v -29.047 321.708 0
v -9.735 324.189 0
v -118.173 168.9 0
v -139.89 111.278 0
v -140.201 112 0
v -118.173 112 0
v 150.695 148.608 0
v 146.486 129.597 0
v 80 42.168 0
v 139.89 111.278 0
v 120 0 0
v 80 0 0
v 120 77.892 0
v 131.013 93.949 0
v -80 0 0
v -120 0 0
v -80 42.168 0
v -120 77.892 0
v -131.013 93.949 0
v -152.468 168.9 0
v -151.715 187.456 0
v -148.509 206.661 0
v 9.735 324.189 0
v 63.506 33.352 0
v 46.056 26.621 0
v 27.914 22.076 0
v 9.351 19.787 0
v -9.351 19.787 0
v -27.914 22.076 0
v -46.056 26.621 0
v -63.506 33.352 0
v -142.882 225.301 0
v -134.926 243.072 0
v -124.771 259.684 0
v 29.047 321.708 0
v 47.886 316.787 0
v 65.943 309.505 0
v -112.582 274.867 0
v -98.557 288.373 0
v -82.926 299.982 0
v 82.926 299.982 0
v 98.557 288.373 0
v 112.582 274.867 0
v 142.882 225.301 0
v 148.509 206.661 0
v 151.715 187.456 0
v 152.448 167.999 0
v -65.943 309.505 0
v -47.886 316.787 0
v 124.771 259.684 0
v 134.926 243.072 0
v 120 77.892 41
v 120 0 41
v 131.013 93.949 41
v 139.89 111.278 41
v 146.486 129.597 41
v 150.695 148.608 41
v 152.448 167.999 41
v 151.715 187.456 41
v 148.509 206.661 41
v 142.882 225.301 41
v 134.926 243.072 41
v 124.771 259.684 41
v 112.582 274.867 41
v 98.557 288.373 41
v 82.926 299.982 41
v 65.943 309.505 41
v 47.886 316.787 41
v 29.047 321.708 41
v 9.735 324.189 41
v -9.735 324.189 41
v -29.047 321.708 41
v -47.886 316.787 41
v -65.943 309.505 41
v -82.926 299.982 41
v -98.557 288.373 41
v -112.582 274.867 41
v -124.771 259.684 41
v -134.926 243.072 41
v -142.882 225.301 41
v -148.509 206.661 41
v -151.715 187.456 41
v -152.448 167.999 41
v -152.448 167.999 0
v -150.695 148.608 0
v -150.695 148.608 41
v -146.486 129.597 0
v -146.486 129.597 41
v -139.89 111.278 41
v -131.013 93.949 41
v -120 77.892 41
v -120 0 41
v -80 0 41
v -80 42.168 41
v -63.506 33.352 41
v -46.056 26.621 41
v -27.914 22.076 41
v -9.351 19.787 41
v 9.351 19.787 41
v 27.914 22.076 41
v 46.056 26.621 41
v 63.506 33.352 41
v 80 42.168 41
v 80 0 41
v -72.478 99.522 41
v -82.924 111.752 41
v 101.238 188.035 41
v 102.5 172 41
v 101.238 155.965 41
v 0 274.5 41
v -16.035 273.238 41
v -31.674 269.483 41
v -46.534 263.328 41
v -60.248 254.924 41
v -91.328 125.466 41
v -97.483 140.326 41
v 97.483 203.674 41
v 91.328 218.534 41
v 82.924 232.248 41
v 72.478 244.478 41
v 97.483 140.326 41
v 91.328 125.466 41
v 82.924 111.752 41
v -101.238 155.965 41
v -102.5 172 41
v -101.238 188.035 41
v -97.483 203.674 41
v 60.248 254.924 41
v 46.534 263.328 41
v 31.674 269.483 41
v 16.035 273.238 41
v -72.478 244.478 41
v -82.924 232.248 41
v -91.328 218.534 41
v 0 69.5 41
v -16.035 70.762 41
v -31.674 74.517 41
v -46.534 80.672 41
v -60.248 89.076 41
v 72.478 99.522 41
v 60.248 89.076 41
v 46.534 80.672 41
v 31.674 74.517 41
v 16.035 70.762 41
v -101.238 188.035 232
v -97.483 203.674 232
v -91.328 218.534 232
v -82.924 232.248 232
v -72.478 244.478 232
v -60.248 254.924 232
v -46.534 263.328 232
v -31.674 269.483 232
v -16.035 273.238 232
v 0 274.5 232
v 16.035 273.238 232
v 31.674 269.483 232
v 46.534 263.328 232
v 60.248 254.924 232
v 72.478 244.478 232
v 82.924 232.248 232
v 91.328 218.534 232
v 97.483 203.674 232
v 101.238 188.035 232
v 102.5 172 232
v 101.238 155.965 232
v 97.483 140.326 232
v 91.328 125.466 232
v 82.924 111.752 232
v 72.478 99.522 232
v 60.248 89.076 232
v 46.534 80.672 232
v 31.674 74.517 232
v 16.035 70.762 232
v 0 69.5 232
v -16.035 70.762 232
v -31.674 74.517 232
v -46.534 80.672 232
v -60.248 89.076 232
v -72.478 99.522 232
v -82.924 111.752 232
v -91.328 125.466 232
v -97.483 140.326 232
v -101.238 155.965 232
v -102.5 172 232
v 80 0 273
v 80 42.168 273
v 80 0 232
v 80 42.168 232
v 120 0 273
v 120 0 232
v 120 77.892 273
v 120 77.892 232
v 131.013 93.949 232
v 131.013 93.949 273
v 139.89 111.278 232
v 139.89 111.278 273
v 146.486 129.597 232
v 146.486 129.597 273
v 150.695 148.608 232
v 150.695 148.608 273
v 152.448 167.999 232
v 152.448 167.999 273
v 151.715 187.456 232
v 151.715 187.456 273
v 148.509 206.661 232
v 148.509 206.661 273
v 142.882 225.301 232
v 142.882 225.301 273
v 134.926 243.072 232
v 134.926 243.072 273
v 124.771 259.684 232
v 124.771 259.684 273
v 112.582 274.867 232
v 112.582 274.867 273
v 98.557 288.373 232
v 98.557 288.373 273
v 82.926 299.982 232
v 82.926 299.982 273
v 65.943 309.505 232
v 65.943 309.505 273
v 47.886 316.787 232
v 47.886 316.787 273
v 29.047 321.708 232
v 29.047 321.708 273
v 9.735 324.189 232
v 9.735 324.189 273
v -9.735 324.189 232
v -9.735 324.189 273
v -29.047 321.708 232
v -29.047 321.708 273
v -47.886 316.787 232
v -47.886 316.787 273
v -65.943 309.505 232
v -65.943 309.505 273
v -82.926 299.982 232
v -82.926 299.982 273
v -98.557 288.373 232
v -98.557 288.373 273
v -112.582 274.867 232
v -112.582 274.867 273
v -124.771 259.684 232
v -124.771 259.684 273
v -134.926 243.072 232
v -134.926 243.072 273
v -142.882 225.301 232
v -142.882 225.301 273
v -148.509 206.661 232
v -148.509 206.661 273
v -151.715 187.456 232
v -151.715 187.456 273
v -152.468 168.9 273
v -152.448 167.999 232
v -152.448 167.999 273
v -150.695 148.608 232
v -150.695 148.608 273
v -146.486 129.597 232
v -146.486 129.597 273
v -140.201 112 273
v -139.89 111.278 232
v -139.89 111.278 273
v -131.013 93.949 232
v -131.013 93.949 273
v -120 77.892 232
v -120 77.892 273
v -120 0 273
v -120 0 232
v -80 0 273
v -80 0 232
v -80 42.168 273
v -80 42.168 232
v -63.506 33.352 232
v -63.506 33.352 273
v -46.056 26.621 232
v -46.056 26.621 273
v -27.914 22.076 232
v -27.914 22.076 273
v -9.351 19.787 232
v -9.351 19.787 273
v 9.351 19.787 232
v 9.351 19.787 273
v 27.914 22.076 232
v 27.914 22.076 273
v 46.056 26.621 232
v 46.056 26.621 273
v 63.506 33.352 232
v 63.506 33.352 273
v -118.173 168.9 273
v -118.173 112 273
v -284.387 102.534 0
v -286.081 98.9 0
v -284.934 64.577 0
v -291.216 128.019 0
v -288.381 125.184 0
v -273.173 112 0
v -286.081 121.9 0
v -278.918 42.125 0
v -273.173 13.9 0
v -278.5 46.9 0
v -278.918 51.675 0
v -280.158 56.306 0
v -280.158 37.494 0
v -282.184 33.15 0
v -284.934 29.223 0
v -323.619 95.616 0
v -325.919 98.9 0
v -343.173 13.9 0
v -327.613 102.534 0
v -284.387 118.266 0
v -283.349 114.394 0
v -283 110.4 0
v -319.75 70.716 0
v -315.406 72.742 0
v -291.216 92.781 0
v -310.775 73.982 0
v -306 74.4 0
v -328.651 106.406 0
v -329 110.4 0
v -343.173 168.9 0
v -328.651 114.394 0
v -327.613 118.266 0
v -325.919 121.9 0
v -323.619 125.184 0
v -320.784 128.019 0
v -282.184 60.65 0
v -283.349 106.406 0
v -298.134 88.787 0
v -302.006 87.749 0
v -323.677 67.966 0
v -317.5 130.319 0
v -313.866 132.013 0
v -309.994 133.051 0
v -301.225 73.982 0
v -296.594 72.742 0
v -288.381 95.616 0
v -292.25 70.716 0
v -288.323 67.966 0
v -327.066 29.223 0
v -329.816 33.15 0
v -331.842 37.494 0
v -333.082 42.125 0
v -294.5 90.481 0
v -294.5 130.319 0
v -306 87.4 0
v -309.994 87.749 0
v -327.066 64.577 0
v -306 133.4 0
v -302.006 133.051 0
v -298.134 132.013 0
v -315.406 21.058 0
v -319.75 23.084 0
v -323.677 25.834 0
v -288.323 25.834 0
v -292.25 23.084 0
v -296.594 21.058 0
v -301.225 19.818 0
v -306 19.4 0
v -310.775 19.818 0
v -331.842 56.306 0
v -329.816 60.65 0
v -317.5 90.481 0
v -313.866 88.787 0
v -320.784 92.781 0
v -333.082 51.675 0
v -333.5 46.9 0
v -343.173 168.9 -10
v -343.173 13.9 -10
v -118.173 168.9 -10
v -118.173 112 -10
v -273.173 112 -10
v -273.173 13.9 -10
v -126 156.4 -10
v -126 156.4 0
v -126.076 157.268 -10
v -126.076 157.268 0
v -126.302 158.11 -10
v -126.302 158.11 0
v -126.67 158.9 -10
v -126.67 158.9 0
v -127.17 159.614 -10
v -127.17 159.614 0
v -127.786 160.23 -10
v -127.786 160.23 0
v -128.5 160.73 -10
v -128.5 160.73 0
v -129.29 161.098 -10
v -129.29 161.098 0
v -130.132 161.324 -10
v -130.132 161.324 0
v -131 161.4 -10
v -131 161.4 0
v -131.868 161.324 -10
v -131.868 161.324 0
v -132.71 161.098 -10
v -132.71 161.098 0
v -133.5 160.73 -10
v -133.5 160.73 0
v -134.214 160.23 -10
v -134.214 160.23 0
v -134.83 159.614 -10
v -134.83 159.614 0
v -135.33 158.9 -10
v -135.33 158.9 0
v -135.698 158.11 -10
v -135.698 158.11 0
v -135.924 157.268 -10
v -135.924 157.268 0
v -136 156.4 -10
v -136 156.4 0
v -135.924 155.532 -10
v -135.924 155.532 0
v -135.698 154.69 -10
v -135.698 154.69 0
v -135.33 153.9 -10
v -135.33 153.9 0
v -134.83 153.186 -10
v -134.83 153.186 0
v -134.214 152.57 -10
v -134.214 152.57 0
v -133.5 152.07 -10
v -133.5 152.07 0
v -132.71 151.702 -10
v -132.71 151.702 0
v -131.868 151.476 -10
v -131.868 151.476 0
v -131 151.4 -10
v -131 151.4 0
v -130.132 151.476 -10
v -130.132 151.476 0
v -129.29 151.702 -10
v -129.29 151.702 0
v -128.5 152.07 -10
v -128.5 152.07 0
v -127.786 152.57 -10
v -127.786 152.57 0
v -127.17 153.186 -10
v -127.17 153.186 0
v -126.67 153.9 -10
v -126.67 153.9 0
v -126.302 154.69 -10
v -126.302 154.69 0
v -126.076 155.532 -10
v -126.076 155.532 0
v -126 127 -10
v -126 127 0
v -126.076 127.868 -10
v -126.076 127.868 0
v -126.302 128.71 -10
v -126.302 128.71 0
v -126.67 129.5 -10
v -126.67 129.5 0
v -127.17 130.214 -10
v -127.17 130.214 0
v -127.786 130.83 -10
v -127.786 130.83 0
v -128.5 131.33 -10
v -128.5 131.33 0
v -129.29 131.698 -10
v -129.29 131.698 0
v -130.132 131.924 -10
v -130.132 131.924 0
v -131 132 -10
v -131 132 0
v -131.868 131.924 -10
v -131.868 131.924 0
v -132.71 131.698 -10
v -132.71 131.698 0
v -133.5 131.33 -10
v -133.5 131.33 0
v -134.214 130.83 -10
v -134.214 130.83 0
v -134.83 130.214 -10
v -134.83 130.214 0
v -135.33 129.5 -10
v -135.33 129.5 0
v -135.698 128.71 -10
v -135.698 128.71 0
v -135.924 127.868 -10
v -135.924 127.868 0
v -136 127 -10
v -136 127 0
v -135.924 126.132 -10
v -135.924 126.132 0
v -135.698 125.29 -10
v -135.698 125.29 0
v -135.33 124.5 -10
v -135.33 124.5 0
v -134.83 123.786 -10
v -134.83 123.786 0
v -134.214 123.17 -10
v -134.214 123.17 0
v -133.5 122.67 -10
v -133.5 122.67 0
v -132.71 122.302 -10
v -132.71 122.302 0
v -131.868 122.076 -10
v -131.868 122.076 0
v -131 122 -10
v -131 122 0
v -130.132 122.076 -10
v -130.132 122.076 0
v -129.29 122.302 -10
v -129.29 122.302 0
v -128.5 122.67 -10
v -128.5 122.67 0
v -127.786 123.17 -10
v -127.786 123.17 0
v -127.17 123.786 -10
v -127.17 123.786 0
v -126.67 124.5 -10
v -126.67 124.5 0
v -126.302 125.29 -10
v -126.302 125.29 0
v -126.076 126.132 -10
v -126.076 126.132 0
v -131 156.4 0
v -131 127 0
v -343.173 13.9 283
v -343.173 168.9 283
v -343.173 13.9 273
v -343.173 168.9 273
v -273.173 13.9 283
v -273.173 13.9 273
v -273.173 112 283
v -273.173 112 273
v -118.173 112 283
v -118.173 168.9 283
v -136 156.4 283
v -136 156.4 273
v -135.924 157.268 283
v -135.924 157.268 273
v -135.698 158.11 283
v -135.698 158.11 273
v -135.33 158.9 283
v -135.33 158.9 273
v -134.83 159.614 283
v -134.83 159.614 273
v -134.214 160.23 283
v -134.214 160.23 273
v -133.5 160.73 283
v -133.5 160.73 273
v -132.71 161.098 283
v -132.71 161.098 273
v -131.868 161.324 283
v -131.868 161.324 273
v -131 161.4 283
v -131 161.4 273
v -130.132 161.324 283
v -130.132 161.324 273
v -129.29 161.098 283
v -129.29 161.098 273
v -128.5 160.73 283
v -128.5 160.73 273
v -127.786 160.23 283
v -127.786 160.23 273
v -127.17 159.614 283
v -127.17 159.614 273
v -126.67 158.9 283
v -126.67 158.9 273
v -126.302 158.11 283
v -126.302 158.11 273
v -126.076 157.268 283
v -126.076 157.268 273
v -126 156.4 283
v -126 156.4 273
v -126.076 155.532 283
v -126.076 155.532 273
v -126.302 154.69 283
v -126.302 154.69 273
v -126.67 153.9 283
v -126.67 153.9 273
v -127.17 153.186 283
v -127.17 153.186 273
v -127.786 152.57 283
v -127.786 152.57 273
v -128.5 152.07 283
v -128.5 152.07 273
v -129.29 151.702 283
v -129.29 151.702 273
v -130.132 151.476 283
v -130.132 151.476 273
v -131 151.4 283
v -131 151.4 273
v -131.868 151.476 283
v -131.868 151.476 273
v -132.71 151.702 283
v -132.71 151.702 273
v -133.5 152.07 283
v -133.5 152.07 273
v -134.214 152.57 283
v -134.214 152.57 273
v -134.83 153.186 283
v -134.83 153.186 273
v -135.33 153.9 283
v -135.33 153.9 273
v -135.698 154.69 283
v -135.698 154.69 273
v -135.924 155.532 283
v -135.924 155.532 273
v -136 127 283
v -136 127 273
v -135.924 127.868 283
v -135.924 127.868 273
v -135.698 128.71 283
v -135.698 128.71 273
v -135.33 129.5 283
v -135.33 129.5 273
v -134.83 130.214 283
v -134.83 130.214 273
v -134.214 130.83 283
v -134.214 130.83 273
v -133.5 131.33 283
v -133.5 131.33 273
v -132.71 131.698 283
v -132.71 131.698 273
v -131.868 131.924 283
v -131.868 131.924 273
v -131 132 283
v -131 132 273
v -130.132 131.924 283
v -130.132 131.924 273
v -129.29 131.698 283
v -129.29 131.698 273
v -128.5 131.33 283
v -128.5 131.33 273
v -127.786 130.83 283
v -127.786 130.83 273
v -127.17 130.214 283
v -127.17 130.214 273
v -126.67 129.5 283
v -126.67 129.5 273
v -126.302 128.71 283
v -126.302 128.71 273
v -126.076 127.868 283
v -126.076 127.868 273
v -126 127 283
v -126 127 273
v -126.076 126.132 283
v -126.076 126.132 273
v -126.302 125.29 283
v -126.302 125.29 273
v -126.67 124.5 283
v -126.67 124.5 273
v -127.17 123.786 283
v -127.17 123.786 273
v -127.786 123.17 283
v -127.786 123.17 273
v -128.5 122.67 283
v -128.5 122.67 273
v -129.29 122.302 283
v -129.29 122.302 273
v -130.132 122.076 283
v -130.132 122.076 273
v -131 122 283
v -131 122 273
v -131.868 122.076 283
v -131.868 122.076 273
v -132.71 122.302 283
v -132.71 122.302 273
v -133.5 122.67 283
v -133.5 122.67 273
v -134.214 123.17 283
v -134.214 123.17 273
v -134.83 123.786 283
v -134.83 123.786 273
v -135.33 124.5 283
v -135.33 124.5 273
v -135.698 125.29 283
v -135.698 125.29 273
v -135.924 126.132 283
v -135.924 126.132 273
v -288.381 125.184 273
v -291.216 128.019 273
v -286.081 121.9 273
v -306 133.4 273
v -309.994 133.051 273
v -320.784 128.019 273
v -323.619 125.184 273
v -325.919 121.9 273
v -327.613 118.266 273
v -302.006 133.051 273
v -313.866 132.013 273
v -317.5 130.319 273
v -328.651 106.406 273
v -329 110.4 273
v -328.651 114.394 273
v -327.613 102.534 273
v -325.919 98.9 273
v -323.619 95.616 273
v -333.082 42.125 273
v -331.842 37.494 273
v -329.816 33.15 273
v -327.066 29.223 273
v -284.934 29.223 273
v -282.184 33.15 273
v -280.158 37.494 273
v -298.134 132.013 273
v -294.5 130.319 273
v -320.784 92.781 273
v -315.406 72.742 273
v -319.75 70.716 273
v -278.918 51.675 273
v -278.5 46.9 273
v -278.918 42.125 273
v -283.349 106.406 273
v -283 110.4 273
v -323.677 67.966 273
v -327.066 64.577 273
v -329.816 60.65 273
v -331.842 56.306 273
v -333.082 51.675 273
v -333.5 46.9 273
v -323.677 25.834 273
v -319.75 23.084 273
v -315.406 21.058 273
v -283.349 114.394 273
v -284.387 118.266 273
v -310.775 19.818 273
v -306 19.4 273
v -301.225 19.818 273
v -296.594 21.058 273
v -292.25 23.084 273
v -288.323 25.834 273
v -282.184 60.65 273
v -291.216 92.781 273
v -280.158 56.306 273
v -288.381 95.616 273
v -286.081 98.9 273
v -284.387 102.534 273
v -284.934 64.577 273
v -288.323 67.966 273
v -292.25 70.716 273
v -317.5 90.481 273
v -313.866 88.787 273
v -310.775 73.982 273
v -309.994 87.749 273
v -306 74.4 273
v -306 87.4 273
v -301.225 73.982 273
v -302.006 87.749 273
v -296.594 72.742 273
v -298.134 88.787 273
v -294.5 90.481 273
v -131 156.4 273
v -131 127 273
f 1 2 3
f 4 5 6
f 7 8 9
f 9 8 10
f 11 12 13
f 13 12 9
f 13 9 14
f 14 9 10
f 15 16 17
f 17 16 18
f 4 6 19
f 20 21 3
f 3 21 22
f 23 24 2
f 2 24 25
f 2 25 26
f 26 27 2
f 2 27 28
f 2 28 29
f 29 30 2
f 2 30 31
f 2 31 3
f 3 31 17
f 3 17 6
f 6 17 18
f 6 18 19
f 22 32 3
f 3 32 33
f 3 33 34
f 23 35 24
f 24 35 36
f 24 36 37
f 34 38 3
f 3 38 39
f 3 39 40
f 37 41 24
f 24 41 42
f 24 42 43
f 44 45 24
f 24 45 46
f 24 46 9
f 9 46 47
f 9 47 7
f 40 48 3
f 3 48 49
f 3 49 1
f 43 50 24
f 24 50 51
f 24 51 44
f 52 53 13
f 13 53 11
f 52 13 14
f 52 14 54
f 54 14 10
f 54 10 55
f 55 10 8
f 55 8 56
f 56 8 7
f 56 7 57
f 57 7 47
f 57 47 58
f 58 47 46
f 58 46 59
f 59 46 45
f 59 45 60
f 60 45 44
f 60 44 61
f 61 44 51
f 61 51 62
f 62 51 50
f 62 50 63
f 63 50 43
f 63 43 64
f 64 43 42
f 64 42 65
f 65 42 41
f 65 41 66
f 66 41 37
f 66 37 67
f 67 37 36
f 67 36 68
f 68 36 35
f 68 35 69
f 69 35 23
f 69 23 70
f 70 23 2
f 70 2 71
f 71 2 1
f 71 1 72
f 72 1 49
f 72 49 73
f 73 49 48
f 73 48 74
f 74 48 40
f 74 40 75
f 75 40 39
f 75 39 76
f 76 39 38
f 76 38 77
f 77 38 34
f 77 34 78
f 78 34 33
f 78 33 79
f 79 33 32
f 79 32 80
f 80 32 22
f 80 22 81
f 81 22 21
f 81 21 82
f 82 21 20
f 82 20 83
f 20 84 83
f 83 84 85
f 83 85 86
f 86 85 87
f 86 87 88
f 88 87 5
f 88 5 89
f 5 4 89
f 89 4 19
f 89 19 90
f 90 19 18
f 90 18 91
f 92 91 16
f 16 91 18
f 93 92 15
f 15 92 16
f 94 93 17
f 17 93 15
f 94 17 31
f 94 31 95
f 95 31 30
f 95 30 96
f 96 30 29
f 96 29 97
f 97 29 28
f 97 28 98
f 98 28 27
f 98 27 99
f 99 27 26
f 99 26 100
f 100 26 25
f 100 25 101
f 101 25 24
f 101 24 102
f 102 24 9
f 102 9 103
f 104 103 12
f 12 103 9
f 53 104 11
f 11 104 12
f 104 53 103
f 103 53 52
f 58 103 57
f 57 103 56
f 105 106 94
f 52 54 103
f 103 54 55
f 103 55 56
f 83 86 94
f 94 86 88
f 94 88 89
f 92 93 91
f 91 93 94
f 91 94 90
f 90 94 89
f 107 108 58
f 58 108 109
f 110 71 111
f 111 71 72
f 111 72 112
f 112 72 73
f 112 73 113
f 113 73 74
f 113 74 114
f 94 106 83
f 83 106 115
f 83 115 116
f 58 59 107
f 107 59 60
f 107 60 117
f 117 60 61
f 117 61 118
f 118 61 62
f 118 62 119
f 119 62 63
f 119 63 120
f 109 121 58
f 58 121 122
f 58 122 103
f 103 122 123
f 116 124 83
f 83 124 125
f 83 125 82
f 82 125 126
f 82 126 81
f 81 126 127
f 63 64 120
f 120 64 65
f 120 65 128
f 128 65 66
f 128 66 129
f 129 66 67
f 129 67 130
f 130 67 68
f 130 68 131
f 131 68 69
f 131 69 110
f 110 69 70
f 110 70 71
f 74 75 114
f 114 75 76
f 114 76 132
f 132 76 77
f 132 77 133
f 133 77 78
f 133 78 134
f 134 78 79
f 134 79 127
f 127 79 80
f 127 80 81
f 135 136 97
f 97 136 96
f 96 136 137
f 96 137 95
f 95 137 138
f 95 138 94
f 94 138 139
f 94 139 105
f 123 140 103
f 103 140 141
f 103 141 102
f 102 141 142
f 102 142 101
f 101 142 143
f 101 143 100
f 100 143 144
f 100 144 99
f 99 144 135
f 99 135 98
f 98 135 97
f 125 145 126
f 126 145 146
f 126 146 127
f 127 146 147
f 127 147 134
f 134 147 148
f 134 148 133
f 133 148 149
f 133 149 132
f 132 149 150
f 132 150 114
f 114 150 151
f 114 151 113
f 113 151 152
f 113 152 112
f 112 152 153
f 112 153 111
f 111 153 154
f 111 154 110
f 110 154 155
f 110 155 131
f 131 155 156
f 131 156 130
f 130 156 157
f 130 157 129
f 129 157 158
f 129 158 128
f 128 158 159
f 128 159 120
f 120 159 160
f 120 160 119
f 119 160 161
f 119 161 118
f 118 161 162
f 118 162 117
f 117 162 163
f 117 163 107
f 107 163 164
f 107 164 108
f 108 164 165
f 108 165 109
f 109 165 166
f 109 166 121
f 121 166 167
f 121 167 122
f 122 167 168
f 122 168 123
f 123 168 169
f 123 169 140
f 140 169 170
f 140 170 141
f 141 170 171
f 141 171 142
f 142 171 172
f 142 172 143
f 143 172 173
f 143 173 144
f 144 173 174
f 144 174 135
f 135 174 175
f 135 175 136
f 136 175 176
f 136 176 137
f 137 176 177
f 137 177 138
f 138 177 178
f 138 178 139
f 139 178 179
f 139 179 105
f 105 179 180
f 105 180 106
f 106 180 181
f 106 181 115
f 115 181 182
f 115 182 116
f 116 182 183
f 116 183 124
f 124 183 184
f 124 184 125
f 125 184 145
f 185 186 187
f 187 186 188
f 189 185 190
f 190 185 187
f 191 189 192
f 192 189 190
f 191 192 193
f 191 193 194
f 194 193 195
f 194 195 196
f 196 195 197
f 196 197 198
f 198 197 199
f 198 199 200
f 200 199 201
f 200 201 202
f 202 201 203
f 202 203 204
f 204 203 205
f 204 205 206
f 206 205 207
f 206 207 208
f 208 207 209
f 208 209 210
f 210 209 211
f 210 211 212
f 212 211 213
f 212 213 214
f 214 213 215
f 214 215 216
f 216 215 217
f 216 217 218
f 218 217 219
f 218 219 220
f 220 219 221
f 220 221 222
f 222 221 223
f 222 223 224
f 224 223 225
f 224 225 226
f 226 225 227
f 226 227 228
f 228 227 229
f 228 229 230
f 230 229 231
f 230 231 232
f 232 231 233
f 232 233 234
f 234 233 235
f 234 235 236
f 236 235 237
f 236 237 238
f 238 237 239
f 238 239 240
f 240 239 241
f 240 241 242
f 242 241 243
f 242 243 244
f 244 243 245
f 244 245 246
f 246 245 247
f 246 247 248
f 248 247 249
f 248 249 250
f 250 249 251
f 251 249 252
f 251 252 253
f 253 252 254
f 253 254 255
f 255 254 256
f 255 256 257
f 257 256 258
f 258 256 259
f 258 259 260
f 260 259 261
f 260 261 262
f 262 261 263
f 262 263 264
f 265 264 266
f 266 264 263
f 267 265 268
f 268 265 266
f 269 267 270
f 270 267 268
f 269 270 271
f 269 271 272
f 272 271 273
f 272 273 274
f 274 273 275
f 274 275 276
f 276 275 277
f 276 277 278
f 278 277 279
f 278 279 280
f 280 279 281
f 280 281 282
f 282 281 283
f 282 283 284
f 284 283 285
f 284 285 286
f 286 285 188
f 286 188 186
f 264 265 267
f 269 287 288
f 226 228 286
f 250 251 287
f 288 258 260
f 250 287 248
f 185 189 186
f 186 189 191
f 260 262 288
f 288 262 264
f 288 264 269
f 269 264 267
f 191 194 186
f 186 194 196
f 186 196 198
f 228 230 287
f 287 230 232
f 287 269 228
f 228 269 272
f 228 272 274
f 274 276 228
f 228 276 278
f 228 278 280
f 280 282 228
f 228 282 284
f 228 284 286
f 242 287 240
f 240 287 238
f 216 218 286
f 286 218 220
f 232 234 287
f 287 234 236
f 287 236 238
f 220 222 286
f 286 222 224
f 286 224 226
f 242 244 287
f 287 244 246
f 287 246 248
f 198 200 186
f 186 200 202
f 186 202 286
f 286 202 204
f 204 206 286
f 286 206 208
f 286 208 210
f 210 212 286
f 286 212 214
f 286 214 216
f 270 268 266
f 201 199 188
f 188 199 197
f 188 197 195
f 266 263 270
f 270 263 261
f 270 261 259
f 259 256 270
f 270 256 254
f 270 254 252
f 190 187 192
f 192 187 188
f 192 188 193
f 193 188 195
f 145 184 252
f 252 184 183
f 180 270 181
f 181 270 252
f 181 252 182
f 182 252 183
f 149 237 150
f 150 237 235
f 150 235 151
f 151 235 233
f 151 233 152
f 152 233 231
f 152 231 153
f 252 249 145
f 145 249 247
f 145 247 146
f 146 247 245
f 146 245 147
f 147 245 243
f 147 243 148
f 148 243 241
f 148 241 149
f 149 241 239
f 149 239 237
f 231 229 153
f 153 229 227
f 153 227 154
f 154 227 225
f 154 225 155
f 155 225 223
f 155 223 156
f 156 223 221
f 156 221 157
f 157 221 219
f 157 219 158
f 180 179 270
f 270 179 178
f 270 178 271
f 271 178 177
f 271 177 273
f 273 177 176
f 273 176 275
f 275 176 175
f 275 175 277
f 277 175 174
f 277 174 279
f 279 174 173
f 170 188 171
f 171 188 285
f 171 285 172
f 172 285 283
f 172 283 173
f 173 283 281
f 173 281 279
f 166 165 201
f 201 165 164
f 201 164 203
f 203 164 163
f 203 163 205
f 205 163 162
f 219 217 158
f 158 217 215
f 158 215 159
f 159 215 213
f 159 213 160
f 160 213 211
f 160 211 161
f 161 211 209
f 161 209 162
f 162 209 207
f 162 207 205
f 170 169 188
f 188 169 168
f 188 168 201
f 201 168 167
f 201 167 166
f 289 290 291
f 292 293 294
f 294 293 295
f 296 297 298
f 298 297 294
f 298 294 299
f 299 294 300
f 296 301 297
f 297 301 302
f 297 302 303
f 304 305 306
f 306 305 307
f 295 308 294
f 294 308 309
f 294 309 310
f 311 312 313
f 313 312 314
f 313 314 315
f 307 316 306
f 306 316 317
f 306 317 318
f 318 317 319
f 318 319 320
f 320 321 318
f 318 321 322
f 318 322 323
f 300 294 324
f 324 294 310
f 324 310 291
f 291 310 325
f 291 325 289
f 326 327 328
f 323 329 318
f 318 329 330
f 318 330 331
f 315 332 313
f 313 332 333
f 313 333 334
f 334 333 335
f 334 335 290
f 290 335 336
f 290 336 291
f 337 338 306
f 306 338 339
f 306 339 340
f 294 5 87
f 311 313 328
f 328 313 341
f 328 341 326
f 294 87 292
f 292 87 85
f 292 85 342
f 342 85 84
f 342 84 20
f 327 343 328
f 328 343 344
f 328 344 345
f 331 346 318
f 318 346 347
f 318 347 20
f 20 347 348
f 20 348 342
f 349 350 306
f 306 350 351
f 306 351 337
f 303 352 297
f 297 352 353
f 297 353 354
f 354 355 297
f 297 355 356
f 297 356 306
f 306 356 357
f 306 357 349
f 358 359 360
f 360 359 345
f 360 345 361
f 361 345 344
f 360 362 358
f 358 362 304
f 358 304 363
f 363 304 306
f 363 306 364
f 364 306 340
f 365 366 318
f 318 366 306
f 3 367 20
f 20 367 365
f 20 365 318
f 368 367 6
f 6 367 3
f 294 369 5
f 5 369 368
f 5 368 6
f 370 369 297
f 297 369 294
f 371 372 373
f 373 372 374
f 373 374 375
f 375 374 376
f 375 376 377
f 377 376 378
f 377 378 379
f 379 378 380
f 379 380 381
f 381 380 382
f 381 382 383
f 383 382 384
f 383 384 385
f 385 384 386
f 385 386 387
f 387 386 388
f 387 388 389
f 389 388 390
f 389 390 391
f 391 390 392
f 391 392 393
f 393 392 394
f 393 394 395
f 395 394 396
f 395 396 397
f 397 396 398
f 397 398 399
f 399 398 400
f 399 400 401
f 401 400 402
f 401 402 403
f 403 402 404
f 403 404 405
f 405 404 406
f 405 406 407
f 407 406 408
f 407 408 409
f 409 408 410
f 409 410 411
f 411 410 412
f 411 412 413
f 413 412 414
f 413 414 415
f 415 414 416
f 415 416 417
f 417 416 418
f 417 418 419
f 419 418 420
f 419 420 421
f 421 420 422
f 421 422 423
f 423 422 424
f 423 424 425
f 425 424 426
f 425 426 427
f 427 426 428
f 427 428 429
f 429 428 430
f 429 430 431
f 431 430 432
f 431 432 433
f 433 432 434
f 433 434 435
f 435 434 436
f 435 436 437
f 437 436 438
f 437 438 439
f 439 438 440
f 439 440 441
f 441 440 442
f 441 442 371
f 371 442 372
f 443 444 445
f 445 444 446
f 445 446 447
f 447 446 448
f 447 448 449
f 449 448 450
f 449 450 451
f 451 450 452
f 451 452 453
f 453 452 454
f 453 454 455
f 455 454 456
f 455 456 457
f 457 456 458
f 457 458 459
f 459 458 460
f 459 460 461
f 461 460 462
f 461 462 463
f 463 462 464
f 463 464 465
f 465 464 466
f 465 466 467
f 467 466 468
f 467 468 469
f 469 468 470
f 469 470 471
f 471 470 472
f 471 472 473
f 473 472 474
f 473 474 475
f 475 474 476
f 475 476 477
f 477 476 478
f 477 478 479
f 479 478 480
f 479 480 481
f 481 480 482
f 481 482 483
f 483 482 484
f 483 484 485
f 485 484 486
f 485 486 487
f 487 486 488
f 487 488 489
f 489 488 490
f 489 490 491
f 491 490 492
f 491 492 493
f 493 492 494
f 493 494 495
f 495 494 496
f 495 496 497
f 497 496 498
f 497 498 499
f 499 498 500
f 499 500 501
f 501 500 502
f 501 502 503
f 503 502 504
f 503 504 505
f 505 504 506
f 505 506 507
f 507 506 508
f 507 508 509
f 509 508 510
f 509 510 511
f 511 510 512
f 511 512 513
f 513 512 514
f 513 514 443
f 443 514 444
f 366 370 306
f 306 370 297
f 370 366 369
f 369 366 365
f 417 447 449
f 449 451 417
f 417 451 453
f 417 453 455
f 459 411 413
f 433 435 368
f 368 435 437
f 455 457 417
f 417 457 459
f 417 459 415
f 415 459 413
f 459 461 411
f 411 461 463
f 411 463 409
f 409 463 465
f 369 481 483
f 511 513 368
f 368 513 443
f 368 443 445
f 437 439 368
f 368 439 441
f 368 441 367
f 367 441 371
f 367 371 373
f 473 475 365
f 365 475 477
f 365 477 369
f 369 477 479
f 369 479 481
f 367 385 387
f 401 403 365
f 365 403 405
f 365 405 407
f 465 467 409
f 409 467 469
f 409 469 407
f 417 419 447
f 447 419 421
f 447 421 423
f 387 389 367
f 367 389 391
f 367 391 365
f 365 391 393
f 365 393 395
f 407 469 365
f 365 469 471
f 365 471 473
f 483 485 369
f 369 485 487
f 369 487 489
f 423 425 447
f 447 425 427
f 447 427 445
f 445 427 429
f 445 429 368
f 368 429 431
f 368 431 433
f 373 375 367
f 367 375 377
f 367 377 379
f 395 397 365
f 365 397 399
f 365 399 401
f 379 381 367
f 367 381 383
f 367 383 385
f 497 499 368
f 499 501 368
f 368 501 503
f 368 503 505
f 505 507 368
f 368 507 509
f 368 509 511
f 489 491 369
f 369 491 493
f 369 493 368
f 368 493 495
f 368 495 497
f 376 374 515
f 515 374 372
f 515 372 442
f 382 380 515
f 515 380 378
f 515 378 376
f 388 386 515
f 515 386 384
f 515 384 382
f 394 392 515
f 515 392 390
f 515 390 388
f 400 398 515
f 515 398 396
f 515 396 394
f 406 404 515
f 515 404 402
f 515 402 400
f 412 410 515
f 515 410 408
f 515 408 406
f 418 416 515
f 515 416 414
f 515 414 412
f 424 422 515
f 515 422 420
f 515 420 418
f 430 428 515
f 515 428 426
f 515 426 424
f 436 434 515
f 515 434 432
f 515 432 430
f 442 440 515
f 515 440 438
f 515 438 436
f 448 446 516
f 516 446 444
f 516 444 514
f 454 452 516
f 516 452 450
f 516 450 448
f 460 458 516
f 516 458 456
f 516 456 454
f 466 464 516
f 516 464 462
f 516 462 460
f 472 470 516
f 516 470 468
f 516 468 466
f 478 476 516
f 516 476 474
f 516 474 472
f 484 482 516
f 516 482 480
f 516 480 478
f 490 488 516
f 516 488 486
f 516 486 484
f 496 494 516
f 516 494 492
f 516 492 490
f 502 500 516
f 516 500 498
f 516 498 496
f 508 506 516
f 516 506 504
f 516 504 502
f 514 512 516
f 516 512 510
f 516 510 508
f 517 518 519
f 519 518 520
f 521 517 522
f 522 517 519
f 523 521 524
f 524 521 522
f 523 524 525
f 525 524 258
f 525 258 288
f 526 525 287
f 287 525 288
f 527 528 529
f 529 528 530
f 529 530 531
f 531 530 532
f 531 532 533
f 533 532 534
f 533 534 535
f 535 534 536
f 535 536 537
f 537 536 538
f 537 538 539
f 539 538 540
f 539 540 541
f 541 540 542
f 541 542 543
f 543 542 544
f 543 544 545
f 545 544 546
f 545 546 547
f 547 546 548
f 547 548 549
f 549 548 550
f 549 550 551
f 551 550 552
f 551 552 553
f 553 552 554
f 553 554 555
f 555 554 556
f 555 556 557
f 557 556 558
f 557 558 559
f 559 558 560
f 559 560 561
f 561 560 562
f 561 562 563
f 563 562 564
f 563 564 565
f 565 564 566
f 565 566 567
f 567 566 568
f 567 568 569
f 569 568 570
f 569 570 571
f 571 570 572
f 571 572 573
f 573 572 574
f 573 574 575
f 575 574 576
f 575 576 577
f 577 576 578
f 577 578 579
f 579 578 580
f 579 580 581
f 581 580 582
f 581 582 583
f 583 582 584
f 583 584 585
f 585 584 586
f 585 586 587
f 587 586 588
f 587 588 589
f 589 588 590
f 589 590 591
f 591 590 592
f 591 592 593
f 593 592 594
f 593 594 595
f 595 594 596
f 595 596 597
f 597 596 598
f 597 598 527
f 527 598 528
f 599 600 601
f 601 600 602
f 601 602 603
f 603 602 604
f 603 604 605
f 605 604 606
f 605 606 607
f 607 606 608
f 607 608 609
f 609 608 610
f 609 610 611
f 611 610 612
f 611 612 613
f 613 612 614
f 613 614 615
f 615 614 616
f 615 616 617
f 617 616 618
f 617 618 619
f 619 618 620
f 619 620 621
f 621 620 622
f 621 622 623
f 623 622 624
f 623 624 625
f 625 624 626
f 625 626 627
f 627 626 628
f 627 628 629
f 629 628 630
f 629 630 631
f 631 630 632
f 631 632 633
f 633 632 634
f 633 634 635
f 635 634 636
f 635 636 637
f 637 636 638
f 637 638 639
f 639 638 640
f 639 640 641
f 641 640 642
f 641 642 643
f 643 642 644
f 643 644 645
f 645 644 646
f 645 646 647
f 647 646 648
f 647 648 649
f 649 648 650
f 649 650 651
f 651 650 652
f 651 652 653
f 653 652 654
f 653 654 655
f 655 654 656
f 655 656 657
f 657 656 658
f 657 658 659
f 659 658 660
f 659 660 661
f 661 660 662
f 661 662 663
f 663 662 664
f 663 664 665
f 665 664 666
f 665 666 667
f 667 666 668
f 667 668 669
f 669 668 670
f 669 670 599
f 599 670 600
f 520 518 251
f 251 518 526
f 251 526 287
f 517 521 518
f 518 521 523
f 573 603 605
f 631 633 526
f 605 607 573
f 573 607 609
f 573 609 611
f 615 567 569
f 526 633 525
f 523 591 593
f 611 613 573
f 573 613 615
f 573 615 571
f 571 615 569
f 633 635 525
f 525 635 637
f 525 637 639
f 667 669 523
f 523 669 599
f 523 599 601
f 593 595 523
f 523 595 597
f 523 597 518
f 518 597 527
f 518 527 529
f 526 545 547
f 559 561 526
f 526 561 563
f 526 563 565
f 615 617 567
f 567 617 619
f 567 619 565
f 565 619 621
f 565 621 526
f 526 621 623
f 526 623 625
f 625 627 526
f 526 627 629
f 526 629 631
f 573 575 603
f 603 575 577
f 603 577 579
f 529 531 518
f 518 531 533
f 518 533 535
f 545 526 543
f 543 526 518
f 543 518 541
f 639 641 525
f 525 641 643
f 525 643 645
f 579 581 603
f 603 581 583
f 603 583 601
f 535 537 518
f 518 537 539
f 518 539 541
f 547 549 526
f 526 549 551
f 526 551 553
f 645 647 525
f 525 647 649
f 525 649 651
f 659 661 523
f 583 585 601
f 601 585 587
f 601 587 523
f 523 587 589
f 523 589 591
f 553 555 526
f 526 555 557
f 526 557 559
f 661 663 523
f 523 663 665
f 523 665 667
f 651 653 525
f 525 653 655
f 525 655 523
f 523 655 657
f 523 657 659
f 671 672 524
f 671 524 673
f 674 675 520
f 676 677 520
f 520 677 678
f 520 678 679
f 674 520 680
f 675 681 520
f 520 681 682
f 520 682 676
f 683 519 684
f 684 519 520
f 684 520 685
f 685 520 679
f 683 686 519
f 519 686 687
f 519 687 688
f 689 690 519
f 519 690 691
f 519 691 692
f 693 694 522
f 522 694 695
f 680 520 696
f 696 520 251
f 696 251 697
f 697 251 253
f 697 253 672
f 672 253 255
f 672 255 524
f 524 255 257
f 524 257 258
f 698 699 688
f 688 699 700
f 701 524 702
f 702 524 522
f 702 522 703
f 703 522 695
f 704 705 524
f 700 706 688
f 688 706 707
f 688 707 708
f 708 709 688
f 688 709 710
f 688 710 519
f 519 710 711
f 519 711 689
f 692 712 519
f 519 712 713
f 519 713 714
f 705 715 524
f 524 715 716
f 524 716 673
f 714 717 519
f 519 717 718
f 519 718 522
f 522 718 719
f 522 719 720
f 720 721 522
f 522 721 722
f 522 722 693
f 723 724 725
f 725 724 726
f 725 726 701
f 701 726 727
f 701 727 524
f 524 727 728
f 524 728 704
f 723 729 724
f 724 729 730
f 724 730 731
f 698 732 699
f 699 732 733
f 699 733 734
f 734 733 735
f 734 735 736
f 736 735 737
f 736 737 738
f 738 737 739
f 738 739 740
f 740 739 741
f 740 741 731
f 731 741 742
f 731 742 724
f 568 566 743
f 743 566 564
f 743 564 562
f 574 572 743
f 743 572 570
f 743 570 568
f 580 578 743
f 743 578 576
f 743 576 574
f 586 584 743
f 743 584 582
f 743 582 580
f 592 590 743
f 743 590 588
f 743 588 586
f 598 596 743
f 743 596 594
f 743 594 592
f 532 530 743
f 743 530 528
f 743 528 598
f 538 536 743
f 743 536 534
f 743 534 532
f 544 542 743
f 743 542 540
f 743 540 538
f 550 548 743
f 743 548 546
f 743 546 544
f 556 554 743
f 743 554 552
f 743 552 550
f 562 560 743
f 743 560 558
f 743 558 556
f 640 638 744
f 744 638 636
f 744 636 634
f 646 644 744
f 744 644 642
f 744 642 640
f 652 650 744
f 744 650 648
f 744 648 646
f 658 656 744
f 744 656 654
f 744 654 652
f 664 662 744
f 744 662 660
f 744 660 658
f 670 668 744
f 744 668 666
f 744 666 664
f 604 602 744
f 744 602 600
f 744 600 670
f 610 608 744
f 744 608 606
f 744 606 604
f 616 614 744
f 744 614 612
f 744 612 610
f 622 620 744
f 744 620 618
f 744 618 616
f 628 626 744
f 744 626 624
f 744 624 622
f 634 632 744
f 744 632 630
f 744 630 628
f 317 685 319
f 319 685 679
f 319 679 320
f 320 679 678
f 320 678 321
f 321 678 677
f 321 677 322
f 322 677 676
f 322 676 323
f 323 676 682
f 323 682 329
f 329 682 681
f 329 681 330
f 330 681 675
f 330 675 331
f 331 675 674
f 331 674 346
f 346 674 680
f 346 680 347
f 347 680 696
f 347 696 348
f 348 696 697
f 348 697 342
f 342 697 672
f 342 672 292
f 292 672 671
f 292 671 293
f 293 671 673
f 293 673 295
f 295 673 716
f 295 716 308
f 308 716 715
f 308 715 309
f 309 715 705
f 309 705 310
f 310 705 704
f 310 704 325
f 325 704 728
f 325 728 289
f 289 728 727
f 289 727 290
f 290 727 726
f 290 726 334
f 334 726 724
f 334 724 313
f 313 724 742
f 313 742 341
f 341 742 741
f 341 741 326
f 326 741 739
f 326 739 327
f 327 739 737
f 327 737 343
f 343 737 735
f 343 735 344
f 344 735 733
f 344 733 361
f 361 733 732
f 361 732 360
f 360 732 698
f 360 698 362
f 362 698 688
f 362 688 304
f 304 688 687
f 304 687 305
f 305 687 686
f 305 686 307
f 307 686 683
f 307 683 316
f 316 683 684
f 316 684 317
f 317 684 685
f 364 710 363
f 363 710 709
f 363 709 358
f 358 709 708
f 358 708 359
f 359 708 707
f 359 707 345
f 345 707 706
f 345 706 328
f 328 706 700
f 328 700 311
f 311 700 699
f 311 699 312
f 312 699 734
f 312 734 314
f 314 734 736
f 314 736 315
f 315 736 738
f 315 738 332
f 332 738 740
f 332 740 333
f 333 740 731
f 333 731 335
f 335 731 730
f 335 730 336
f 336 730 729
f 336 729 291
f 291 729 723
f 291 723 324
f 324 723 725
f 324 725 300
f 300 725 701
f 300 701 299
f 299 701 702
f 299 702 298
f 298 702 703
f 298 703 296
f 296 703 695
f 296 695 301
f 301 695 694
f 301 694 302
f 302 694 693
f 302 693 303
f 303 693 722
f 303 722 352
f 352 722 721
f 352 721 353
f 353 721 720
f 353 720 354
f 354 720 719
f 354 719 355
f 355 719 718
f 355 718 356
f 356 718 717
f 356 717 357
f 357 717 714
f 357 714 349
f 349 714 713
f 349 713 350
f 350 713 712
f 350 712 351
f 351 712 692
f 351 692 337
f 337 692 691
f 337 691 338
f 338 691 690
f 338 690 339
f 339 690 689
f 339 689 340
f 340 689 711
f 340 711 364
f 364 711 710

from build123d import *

# Parameters (mm, degrees)
SKETCH1_R           = 102.5
BOSS_EXTRUDE1_DEPTH = 41
BOSS_EXTRUDE2_START = 41
SKETCH1_3_R         = 102.5
BOSS_EXTRUDE2_DEPTH = 191
BOSS_EXTRUDE3_START = 232
SKETCH1_4_R         = 102.5
BOSS_EXTRUDE3_DEPTH = 41
SKETCH3_R           = 27.5
SKETCH3_R_2         = 23
SKETCH3_R_3         = 5
BOSS_EXTRUDE4_DEPTH = 10
SKETCH3_3_R         = 23
SKETCH3_3_R_2       = 27.5
BOSS_EXTRUDE5_DEPTH = 273


with BuildPart() as part:
    # Sketch1 → Boss-Extrude1 (new body)
    with BuildSketch(Plane.XY):
        with BuildLine():
            Line((120, 77.892348876), (120, 0))
            Line((120, 0), (80, 0))
            Line((80, 0), (80, 42.168378274))
            ThreePointArc((80, 42.168378274), (0, 19.5), (-80, 42.168378274))
            Line((-80, 42.168378274), (-80, 0))
            Line((-80, 0), (-120, 0))
            Line((-120, 0), (-120, 77.892348876))
            ThreePointArc((-120, 77.892348876), (0, 324.5), (120, 77.892348876))
        make_face()
        with Locations((0, 172)):
            Circle(SKETCH1_R, mode=Mode.SUBTRACT)
        with Locations((0, 172)):
            Circle(SKETCH1_R)
    extrude(amount=BOSS_EXTRUDE1_DEPTH)

    # Sketch1<3> → Boss-Extrude2 (add)
    with BuildSketch(Plane.XY.offset(BOSS_EXTRUDE2_START)):
        with Locations((0, 172)):
            Circle(SKETCH1_3_R)
    extrude(amount=BOSS_EXTRUDE2_DEPTH)

    # Sketch1<4> → Boss-Extrude3 (add)
    with BuildSketch(Plane.XY.offset(BOSS_EXTRUDE3_START)):
        with BuildLine():
            Line((120, 77.892348876), (120, 0))
            Line((120, 0), (80, 0))
            Line((80, 0), (80, 42.168378274))
            ThreePointArc((80, 42.168378274), (0, 19.5), (-80, 42.168378274))
            Line((-80, 42.168378274), (-80, 0))
            Line((-80, 0), (-120, 0))
            Line((-120, 0), (-120, 77.892348876))
            ThreePointArc((-120, 77.892348876), (0, 324.5), (120, 77.892348876))
        make_face()
        with Locations((0, 172)):
            Circle(SKETCH1_4_R, mode=Mode.SUBTRACT)
        with Locations((0, 172)):
            Circle(SKETCH1_4_R)
    extrude(amount=BOSS_EXTRUDE3_DEPTH)

    # Sketch3 → Boss-Extrude4 (add)
    with BuildSketch(Plane.XY):
        Polygon((-273.172788599, 112), (-118.172788599, 112), (-118.172788599, 168.9), (-273.172788599, 168.9), (-343.172788599, 168.9), (-343.172788599, 13.9), (-273.172788599, 13.9), align=None)
        with Locations((-306, 46.9)):
            Circle(SKETCH3_R, mode=Mode.SUBTRACT)
        with Locations((-306, 110.4)):
            Circle(SKETCH3_R_2, mode=Mode.SUBTRACT)
        with Locations((-131, 127)):
            Circle(SKETCH3_R_3, mode=Mode.SUBTRACT)
        with Locations((-131, 156.4)):
            Circle(SKETCH3_R_3, mode=Mode.SUBTRACT)
        with Locations((-306, 46.9)):
            Circle(SKETCH3_R)
        with Locations((-306, 110.4)):
            Circle(SKETCH3_R_2)
    boss_extrude4 = extrude(amount=-BOSS_EXTRUDE4_DEPTH)

    # Mirror1: Boss-Extrude4 across plane
    add(boss_extrude4.mirror(Plane(origin=(0, 0, 136.5), x_dir=(1, 0, 0), z_dir=(0, 0, -1))))

    # Sketch3<3> → Boss-Extrude5 (add)
    with BuildSketch(Plane.XY):
        with Locations((-306, 110.4)):
            Circle(SKETCH3_3_R)
        with Locations((-306, 46.9)):
            Circle(SKETCH3_3_R_2)
    extrude(amount=BOSS_EXTRUDE5_DEPTH)


solid = part.part
